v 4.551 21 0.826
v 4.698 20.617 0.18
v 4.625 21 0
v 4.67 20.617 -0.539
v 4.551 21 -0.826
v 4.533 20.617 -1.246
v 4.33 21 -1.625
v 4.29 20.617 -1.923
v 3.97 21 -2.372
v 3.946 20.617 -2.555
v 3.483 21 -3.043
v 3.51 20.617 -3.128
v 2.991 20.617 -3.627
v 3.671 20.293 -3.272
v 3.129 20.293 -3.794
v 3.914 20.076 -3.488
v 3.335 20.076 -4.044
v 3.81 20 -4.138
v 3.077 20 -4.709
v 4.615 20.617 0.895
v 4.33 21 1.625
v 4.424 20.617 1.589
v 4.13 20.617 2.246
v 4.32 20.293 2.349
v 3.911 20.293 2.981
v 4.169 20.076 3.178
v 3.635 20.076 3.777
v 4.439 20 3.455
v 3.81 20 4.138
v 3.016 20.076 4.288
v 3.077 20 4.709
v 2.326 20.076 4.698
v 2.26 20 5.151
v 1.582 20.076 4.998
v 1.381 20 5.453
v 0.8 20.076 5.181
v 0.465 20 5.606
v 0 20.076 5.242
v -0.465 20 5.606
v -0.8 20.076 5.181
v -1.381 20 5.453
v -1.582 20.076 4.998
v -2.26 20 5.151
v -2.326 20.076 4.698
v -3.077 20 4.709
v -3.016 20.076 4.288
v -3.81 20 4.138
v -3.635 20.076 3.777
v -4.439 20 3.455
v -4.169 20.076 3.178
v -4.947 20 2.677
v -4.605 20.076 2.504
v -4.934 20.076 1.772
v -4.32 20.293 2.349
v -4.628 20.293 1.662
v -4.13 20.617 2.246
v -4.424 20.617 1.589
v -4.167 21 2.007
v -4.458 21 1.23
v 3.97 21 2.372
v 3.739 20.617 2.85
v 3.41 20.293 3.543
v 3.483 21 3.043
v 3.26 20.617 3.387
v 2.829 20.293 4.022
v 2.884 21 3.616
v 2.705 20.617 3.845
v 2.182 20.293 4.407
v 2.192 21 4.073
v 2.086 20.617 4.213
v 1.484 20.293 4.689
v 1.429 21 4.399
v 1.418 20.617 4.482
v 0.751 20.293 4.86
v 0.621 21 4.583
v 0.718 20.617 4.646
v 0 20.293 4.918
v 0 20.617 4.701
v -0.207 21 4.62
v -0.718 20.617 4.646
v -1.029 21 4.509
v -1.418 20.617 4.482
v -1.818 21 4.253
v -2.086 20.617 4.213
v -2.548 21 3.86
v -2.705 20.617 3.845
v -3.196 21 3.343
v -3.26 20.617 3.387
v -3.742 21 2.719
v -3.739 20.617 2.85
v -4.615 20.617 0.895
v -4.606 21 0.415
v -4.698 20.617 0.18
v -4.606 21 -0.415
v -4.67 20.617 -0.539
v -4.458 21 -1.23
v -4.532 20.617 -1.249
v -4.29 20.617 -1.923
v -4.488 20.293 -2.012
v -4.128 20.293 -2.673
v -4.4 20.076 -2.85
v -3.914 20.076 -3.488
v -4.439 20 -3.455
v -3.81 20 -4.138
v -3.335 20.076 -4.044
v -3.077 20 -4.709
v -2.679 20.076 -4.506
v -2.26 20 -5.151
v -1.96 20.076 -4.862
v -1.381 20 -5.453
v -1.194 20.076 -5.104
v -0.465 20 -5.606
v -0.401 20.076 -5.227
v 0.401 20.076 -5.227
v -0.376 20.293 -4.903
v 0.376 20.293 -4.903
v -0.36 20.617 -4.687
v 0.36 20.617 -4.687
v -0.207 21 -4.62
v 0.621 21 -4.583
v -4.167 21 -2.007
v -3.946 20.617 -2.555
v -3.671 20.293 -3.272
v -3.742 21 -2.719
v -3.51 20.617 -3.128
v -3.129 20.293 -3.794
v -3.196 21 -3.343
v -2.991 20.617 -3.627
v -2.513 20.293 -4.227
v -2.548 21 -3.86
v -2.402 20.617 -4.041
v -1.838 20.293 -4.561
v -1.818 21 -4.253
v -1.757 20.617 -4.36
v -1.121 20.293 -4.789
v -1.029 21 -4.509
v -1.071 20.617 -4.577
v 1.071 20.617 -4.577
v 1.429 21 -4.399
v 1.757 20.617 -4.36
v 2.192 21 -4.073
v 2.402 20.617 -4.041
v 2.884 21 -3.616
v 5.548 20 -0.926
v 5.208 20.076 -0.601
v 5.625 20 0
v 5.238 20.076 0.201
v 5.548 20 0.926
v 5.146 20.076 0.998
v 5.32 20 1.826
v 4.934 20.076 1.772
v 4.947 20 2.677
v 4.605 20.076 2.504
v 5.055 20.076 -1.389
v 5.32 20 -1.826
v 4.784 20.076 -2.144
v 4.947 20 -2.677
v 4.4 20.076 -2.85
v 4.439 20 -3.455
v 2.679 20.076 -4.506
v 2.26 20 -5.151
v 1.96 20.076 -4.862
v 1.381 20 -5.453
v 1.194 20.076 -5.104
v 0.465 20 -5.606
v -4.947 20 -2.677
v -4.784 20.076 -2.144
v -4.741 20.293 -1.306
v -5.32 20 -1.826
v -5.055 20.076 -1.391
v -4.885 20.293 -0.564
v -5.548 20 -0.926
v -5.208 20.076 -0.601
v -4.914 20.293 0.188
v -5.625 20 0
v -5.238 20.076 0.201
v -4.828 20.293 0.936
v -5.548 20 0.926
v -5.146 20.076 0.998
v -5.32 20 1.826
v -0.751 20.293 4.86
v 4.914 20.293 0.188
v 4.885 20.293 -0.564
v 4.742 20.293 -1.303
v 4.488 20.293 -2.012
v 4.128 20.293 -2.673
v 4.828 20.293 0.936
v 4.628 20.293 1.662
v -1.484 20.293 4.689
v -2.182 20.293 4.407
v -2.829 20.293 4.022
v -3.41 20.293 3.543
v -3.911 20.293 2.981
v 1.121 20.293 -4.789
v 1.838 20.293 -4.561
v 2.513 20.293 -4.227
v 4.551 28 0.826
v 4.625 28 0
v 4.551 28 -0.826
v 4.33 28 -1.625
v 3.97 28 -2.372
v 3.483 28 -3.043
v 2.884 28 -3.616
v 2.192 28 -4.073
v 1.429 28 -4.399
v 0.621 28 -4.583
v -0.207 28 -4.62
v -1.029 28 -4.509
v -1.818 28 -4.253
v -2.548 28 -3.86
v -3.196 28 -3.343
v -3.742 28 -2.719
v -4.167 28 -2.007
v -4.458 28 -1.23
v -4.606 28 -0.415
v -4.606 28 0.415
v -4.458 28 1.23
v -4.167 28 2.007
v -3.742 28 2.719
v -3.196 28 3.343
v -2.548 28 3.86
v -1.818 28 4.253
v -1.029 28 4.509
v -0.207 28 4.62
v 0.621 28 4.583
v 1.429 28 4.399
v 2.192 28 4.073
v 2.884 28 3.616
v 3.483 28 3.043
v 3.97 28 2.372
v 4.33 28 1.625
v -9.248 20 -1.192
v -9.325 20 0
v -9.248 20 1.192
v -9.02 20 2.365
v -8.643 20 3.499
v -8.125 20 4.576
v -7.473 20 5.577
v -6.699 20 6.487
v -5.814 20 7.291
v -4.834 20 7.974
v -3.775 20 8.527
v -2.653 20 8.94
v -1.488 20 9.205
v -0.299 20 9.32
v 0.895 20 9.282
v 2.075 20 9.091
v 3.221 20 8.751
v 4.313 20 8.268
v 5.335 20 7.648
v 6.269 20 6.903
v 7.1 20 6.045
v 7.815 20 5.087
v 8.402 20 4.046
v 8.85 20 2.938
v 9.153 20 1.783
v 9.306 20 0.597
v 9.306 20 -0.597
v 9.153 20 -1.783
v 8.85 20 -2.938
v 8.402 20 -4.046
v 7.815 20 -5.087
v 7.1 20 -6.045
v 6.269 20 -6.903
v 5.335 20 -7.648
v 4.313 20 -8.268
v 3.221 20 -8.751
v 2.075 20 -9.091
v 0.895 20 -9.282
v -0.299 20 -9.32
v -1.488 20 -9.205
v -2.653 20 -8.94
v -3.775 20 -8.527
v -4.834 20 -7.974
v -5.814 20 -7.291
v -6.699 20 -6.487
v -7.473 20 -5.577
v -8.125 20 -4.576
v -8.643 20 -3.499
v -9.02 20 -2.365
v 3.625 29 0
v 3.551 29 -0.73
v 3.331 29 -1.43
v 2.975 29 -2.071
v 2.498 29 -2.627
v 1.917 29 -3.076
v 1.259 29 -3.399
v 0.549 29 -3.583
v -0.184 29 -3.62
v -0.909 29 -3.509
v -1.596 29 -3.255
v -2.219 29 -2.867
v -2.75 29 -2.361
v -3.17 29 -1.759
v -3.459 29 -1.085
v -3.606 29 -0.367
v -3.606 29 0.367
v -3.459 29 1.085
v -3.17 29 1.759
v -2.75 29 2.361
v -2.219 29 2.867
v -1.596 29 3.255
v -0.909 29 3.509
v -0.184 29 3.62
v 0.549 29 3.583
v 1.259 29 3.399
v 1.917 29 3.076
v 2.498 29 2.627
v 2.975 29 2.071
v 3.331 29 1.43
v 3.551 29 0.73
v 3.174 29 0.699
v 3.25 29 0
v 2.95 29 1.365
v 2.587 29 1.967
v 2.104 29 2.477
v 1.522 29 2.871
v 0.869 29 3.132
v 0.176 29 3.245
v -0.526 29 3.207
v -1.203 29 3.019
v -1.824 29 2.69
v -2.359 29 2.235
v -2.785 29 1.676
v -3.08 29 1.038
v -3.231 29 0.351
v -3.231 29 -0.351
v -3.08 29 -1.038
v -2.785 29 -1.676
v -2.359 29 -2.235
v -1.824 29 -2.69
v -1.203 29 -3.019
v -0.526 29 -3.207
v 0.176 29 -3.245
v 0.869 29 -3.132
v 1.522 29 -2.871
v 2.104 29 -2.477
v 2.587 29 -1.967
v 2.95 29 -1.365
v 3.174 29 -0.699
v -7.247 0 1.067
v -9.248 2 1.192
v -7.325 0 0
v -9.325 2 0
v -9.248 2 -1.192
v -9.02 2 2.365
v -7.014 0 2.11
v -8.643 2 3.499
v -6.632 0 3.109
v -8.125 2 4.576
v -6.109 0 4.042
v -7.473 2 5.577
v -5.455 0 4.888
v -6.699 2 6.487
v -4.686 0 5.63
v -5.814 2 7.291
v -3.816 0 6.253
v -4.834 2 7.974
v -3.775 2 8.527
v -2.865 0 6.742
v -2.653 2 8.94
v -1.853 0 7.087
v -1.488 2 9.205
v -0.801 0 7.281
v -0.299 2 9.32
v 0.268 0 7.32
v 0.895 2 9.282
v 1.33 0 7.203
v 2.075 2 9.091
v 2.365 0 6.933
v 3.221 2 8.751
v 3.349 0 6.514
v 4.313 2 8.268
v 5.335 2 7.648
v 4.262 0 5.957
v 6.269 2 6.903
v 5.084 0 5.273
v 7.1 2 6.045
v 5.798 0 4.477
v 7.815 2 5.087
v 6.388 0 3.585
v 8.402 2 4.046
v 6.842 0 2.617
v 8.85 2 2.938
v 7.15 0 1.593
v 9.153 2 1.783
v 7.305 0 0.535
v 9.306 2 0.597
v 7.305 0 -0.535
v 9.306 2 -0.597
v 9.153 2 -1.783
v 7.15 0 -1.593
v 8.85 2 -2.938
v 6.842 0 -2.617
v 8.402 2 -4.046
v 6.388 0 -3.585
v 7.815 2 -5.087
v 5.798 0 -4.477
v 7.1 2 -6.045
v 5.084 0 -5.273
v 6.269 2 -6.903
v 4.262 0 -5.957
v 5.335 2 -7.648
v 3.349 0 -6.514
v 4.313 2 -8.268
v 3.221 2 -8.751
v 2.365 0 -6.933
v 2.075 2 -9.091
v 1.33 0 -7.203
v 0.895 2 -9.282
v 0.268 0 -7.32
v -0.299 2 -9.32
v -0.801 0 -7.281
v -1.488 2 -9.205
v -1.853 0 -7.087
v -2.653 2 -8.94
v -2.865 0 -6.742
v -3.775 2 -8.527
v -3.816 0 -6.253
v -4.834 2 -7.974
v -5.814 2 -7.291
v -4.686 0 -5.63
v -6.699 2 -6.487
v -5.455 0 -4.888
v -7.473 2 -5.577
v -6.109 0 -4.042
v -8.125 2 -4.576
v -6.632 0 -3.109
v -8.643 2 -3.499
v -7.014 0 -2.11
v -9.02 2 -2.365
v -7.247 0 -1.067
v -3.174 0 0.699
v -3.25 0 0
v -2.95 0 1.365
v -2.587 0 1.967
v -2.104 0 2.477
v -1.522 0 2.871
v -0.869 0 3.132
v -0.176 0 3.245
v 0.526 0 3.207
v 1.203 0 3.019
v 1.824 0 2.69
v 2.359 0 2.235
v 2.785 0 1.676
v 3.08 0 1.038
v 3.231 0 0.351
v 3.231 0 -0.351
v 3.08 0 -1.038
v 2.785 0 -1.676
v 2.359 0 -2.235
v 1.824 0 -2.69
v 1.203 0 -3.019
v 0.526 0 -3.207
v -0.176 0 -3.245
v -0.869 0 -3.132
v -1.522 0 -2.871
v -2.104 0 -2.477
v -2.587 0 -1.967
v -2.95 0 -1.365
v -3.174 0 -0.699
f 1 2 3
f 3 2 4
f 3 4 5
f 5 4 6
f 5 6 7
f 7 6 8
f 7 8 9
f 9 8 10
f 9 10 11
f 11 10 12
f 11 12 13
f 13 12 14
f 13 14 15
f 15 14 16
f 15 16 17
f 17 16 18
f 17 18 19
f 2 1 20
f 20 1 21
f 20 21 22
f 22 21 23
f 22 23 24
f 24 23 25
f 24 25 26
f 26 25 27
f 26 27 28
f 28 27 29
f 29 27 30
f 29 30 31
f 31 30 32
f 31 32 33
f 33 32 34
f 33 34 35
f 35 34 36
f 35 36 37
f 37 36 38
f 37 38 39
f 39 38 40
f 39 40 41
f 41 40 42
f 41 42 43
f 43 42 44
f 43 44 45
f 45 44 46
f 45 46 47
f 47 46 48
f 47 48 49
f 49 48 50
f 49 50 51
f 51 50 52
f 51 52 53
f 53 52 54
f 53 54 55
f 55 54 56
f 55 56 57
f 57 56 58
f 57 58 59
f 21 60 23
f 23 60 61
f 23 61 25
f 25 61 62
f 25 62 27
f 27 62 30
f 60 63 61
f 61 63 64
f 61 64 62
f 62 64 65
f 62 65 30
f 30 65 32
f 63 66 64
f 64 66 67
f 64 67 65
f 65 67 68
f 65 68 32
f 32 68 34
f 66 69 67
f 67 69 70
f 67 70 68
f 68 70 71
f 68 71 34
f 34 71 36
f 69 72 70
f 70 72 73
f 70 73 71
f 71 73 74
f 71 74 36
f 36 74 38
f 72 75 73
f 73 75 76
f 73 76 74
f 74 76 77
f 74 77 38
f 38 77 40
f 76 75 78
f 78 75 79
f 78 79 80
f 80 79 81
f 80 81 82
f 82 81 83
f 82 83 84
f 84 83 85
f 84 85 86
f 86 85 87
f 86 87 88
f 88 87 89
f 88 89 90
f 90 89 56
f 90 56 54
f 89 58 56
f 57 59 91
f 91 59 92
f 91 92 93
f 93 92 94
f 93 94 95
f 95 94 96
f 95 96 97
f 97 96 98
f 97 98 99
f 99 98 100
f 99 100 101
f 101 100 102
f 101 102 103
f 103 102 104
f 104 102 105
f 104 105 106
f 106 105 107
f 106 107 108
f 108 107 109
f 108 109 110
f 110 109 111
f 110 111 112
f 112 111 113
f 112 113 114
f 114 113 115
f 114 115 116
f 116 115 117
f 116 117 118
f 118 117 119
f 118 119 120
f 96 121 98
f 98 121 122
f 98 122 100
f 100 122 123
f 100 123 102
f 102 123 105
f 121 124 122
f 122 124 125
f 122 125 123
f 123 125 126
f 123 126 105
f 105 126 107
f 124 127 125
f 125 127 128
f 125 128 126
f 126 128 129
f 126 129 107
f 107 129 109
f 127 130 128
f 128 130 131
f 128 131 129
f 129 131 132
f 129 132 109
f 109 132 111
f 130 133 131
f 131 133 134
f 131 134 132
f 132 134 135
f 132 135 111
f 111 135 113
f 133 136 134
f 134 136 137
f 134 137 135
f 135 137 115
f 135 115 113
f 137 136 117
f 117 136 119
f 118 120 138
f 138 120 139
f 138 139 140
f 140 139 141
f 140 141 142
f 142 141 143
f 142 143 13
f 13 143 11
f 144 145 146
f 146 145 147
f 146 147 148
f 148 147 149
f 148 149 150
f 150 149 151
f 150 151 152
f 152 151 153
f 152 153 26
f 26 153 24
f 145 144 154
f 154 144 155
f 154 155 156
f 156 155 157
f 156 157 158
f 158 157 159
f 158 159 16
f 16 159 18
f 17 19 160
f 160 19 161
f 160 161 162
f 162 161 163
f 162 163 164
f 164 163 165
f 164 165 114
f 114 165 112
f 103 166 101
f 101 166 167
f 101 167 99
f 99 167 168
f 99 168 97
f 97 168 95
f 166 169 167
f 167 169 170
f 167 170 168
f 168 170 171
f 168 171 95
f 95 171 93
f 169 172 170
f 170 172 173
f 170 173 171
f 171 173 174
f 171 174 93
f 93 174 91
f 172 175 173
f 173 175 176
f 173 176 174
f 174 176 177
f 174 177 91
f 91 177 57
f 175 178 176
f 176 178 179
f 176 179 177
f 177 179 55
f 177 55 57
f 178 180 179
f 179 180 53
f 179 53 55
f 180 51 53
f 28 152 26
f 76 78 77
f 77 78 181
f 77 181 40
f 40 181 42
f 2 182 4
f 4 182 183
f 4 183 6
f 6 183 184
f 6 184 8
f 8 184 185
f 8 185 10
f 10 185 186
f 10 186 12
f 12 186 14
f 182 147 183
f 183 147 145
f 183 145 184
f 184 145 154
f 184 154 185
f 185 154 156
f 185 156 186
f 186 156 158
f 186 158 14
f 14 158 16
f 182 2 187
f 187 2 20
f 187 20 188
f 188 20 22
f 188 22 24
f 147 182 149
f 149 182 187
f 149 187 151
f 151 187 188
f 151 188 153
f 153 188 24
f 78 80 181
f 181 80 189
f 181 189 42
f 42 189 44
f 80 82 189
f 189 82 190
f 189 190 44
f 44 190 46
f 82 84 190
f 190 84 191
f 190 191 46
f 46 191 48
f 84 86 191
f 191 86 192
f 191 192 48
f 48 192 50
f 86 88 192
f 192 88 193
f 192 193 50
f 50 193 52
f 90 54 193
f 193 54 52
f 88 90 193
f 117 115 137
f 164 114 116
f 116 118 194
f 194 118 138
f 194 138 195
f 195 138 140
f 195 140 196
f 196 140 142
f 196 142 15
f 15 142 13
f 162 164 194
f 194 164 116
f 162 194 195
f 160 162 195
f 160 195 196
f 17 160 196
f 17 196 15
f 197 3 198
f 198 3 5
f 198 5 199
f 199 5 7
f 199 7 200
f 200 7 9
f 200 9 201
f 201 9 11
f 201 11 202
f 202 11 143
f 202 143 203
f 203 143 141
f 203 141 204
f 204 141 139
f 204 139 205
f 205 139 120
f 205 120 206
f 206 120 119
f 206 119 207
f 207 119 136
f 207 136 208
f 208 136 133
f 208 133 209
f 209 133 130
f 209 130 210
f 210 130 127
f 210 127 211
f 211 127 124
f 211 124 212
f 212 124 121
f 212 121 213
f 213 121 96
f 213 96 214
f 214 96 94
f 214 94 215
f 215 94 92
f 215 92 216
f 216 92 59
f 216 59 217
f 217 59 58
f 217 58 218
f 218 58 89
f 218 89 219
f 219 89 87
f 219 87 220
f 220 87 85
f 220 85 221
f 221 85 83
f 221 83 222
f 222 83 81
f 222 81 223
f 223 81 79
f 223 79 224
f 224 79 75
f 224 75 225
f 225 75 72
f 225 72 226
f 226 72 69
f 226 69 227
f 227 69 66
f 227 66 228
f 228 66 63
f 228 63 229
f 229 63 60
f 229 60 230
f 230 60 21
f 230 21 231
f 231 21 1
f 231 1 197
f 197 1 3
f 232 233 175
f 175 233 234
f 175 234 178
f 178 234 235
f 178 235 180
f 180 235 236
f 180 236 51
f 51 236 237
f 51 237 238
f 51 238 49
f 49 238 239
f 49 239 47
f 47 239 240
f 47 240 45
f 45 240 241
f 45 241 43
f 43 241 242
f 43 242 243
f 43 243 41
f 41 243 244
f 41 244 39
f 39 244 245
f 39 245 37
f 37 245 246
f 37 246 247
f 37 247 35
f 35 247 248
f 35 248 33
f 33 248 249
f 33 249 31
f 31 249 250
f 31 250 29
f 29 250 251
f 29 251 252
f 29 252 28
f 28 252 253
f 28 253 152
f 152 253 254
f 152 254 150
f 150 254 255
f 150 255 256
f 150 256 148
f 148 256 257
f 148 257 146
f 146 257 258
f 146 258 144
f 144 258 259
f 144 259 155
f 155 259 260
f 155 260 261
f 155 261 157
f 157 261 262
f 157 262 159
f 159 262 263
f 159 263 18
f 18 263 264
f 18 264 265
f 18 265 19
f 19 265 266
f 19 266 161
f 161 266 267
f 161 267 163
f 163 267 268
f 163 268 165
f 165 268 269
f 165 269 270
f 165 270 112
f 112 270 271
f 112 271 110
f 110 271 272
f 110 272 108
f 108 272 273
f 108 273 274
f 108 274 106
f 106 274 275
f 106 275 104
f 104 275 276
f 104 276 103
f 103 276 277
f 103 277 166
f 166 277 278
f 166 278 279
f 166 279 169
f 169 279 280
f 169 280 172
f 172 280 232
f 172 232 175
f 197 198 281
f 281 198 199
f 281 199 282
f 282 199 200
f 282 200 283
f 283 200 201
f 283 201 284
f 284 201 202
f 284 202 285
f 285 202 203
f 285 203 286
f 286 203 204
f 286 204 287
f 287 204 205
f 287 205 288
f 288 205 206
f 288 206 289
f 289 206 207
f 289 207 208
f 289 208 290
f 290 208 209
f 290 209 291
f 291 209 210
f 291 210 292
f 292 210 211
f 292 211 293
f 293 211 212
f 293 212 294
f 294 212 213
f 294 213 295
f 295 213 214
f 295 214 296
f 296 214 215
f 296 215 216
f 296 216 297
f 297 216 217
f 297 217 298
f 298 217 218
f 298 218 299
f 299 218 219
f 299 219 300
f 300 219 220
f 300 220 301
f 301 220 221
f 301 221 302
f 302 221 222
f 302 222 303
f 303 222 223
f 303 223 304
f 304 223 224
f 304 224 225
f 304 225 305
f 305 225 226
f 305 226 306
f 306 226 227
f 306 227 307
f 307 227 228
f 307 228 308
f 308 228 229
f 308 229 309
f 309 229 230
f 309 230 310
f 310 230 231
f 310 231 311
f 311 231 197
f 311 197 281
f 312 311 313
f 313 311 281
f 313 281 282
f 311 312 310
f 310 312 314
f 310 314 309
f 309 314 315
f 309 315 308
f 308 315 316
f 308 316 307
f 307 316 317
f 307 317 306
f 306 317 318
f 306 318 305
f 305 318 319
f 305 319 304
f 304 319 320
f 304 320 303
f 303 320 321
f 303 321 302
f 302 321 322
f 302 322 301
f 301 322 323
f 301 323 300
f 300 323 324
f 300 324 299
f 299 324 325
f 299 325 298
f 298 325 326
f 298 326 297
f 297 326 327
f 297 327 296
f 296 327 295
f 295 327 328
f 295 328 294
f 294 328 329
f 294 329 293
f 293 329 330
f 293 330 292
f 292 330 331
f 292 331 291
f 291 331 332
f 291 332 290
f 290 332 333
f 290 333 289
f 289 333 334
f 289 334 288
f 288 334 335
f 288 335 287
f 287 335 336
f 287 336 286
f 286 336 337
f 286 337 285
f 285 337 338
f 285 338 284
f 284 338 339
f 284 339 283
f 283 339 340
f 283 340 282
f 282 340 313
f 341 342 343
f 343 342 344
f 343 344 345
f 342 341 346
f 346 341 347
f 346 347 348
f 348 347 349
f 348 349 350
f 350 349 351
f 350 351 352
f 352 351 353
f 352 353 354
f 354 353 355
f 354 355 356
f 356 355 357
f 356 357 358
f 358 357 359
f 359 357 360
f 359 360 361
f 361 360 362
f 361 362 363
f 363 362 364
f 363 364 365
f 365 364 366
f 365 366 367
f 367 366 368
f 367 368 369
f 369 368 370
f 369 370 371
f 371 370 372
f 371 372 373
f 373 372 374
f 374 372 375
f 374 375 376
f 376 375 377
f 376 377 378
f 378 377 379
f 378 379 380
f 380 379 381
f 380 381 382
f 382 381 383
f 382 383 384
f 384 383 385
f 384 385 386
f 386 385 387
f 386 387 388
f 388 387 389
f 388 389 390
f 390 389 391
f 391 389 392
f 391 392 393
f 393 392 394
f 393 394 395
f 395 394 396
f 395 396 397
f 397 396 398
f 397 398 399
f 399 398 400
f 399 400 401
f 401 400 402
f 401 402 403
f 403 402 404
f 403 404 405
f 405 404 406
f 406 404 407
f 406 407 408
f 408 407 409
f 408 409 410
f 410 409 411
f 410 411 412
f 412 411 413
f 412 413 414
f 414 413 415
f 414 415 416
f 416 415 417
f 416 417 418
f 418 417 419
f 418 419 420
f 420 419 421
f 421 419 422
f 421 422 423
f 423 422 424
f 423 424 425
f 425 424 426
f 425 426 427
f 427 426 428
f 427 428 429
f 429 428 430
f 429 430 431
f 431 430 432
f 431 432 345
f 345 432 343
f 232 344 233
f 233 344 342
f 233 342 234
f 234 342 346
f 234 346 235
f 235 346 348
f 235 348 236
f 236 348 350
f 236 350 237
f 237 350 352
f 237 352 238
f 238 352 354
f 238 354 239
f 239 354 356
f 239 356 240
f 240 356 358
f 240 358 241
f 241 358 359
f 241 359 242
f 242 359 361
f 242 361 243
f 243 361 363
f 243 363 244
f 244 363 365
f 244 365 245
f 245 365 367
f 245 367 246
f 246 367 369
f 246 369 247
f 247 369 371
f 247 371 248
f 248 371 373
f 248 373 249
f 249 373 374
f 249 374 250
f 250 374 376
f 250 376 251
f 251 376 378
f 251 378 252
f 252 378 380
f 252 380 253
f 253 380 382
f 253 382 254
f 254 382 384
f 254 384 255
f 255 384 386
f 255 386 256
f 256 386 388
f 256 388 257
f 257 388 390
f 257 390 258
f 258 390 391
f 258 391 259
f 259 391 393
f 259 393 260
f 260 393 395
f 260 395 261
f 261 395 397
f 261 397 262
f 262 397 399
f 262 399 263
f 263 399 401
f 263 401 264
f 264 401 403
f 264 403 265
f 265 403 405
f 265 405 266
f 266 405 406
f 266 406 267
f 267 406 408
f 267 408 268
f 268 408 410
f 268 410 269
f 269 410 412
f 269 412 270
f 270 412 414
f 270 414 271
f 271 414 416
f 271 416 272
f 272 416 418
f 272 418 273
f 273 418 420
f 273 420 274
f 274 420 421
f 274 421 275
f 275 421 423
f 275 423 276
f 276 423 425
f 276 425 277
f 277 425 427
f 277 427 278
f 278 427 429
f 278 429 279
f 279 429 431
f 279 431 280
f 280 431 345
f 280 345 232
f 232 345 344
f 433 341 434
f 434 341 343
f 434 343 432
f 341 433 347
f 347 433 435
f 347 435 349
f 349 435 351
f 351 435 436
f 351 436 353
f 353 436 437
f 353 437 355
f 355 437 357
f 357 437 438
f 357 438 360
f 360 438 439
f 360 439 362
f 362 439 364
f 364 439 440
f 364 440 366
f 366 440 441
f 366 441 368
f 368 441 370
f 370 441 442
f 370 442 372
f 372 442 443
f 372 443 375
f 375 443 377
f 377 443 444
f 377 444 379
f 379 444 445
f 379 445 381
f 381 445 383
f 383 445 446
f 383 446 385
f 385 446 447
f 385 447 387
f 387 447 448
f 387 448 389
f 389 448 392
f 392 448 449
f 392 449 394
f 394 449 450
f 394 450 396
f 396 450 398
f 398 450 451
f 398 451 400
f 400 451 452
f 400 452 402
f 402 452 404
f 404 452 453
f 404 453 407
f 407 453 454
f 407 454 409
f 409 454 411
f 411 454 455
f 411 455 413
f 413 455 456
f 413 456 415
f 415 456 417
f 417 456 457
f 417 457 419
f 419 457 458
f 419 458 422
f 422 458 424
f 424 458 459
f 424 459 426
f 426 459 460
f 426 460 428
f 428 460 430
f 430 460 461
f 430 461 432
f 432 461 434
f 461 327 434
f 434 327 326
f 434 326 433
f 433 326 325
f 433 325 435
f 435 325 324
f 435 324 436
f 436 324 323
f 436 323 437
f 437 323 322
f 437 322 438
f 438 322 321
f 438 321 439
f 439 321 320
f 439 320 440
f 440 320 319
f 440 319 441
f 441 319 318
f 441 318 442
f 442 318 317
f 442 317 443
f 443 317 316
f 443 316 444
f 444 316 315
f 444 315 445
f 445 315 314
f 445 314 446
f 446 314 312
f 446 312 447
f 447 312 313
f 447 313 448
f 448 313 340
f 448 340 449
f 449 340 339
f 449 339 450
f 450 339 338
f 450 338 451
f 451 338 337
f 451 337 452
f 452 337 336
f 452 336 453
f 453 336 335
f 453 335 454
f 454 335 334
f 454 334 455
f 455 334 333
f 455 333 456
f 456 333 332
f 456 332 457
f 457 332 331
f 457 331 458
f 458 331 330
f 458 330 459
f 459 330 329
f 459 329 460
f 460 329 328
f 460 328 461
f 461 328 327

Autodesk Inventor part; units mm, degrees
ref_plane "YZ Plane" through (0, 0, 0) normal (1, 0, 0) x (0, 1, 0)
ref_plane "XZ Plane" through (0, 0, 0) normal (0, 1, 0) x (-1, 0, 0)
ref_plane "XY Plane" through (0, 0, 0) normal (0, 0, 1) x (1, 0, 0)
sketch "Boceto1" plane through (0, 0, 0) normal (0, 1, 0) x (-1, 0, 0)
  circle A0 centre (0, 0) radius 9.325
  dimension "d0" = 18.65
extrude "Extrusión1" add sketch "Boceto1" along normal blind 20
sketch "Boceto2" plane through (0, 20, 0) normal (0, 1, 0) x (1, 0, 0)
  circle A0 centre (0, 0) radius 4.625
  dimension "d3" = 9.25
extrude "Extrusión2" add sketch "Boceto2" along normal blind 9
sketch "Boceto3" plane through (0, 29, 0) normal (0, 1, 0) x (1, 0, 0)
  circle A0 centre (0, 0) radius 4.625 projected
hole "Agujero1" at (0, 29, 0) direction (0, -1, 0) diameter 6.5 end through all
chamfer "Chaflán1" distance 2 angle 45 1 edges at (9.325, 0, 0)
chamfer "Chaflán2" distance 1 angle 45 1 edges at (-4.625, 29, 0)
fillet "Empalme1" radius 1 1 edges at (-4.625, 20, 0)
equation "\"d30\" = 0.125 * Sketch4_Pitch"
equation "\"Sketch4_Pitch\" = 1.5"
equation "\"d32\" = 60deg"
properties part number "OutputFile"
